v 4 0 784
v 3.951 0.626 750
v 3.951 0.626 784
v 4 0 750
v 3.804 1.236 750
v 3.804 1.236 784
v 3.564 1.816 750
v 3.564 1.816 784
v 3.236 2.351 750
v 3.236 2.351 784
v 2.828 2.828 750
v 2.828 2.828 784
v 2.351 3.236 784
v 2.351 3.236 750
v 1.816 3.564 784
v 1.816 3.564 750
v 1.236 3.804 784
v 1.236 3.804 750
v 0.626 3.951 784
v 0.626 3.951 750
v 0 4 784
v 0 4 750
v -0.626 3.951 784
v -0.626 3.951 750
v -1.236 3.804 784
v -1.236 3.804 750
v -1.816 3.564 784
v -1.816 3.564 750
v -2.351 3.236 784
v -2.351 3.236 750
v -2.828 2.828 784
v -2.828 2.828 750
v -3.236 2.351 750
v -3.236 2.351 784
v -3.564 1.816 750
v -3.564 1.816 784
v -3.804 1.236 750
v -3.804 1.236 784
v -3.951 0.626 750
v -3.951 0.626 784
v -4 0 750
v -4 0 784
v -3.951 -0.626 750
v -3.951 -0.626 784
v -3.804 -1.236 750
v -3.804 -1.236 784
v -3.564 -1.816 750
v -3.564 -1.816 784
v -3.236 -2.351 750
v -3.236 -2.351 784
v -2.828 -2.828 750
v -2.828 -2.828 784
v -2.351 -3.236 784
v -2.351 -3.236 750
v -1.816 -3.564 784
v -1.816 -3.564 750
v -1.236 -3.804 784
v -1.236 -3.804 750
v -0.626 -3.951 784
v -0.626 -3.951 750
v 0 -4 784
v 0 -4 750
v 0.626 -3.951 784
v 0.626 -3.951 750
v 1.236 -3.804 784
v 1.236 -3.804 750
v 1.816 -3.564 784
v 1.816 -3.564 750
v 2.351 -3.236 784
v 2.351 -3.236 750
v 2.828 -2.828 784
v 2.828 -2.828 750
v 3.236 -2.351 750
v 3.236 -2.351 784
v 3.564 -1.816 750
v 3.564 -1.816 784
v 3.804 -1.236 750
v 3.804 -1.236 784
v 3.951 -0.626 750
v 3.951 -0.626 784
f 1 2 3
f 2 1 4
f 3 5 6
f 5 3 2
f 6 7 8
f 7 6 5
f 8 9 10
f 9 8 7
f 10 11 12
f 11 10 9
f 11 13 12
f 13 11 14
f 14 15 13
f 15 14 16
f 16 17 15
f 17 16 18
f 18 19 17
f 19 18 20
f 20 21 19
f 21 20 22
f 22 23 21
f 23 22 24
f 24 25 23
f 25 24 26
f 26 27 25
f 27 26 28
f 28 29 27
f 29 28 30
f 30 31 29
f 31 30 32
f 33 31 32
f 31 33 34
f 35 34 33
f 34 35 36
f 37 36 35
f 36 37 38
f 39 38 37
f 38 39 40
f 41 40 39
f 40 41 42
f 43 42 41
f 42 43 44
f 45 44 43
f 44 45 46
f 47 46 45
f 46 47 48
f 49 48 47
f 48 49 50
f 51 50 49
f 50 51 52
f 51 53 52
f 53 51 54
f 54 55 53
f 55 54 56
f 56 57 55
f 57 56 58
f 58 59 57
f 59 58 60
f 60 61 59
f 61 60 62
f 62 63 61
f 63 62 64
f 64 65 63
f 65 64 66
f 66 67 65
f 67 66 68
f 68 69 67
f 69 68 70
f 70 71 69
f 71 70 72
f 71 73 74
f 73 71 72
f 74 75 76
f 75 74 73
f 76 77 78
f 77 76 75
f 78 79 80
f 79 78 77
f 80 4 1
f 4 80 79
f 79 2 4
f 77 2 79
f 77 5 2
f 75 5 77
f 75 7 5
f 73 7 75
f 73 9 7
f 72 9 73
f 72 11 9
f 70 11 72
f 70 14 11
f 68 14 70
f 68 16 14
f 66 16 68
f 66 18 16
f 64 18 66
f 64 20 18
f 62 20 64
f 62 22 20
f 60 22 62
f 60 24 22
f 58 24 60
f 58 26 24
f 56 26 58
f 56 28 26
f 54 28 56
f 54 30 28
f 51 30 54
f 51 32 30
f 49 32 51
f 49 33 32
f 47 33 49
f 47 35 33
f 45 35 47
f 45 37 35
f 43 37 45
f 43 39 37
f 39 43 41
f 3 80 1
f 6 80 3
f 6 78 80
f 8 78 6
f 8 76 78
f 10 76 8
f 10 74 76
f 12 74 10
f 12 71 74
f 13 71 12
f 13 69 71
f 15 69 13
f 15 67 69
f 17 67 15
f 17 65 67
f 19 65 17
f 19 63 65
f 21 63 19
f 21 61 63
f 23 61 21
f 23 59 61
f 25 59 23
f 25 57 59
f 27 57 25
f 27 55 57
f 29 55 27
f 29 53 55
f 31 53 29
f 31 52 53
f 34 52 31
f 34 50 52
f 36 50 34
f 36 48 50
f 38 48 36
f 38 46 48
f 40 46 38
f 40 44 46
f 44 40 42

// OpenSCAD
// file: parts.scad
$fn=40;

// ---- 桌腿 ----

module leg(){
  difference(){
    union(){
      translate([390.000,390.000,0.000]) cube([60.000,60.000,750.000]);
      translate([400.000,400.000,750.000]) cube([40.000,40.000,20.000]);
    }
    // 牙板透榫槽（沿 +x，+y 侧牙板 A 端穿入）
    translate([389.000,426.800,699.800]) cube([62.000,14.400,40.400]);
    // 牙板闷榫槽（沿 +y，+x 侧牙板 B 端）
    translate([426.800,389.000,699.800]) cube([14.400,23.200,40.400]);
  }
}

// ---- 边框 ----

module rail(){
  difference(){
    union(){
      translate([0,0,750]) linear_extrude(height=50) polygon(points=[[-370,370],[370,370],[450.0,450.0],[-450.0,450.0]]);
      translate([420.607,399.393,779.0]) rotate([0,0,-45]) cube([34,40,10],center=true);
    }
    // 面板槽：全长开通至 45° 端面（角部两框的槽合起来成 L 形）
    translate([-450.000,370.000,785.800]) cube([900.000,14.000,6.400]);
    // 腿顶榫卯（两端各半，合起来 40x40x20）
    translate([399.800,399.800,750.000]) cube([40.400,40.400,20.400]);
    translate([-440.200,399.800,750.000]) cube([40.400,40.400,20.400]);
    // 格角暗榫卯
    translate([-398.545,421.455,779.0]) rotate([0,0,45]) cube([34.4,40.4,10.4],center=true);
    // 竹销孔：+x 端穿暗榫，-x 端穿本体
    translate([418,384,750]) cylinder(h=34,r=4.0,$fn=40);
    translate([-384,418,750]) cylinder(h=34,r=4.0,$fn=40);
  }
}

// ---- 牙板 ----

module apron(){
  difference(){
    union(){
      translate([-390.000,424.000,680.000]) cube([780.000,20.000,70.000]);
      // A 端：透榫（390..460）
      translate([390.000,427.000,700.000]) cube([70.000,14.000,40.000]);
      // B 端：闷榫（-412..-390）
      translate([-412.000,427.000,700.000]) cube([22.000,14.000,40.000]);
    }
    hull(){ translate([375.000,423.500,680.000]) cube([15.000,21.000,0.200]); translate([389.800,423.500,680.000]) cube([0.200,21.000,15.000]); }
    hull(){ translate([-390.000,423.500,680.000]) cube([15.000,21.000,0.200]); translate([-390.000,423.500,680.000]) cube([0.200,21.000,15.000]); }
    // 透榫楔槽（横槽，撑开榫头上下两片）
    translate([428.000,426.900,718.400]) cube([32.200,14.200,3.200]);
  }
}

// ---- 面板-边板 ----

module panel_outer(){
  difference(){
    union(){
      translate([-365.000,-365.000,778.000]) cube([730.000,244.000,22.000]);
      translate([0,0,786]) linear_extrude(height=6) polygon(points=[[-379,-121],[-379,-377],[-377,-379],[377,-379],[379,-377],[379,-121],[365,-121],[365,-365],[-365,-365],[-365,-121]]);
    }
    // 内侧龙凤榫槽（向板内 8 深：y -129..-121）
    translate([-365.000,-129.000,785.800]) cube([730.000,8.000,6.400]);
    // 穿带燕尾槽
    hull(){ translate([-259.200,-365.000,778.000]) cube([30.400,244.000,0.100]); translate([-266.200,-365.000,783.900]) cube([44.400,244.000,0.100]); }
    hull(){ translate([-15.200,-365.000,778.000]) cube([30.400,244.000,0.100]); translate([-22.200,-365.000,783.900]) cube([44.400,244.000,0.100]); }
    hull(){ translate([228.800,-365.000,778.000]) cube([30.400,244.000,0.100]); translate([221.800,-365.000,783.900]) cube([44.400,244.000,0.100]); }
  }
}

// ---- 面板-中板 ----

module panel_middle(){
  difference(){
    union(){
      translate([-365.000,-121.000,778.000]) cube([730.000,242.000,22.000]);
      translate([365.000,-121.000,786.000]) cube([14.000,242.000,6.000]);
      translate([-379.000,-121.000,786.000]) cube([14.000,242.000,6.000]);
    }
    // 两侧龙凤榫槽（各向板内 8 深）
    translate([-365.000,-121.000,785.800]) cube([730.000,8.000,6.400]);
    translate([-365.000,113.000,785.800]) cube([730.000,8.000,6.400]);
    hull(){ translate([-259.200,-121.000,778.000]) cube([30.400,242.000,0.100]); translate([-266.200,-121.000,783.900]) cube([44.400,242.000,0.100]); }
    hull(){ translate([-15.200,-121.000,778.000]) cube([30.400,242.000,0.100]); translate([-22.200,-121.000,783.900]) cube([44.400,242.000,0.100]); }
    hull(){ translate([228.800,-121.000,778.000]) cube([30.400,242.000,0.100]); translate([221.800,-121.000,783.900]) cube([44.400,242.000,0.100]); }
  }
}

// ---- 穿带 ----

module cleat(){
  union(){
    translate([-20.000,-363.000,752.000]) cube([40.000,726.000,26.000]);
    hull(){
      translate([-15.000,-363.000,777.900]) cube([30.000,726.000,0.050]);
      translate([-22.000,-363.000,783.800]) cube([44.000,726.000,0.100]);
    }
  }
}

// ---- 穿簧 ----
module spline(){ translate([-360.000,-7.800,786.100]) cube([720.000,15.600,5.800]); }
// ---- 木楔 ----
module wedge(){ hull(){ translate([435.000,427.400,719.400]) cube([1.000,13.200,1.200]); translate([467.000,427.400,718.500]) cube([1.000,13.200,3.000]); } }
// ---- 竹销 ----
module pin(){ translate([0,0,750]) cylinder(h=34,r=4.0,$fn=40); }
// main file
// 竹销（0° 基准件，位于整机坐标系中）
include <parts.scad>
pin();
